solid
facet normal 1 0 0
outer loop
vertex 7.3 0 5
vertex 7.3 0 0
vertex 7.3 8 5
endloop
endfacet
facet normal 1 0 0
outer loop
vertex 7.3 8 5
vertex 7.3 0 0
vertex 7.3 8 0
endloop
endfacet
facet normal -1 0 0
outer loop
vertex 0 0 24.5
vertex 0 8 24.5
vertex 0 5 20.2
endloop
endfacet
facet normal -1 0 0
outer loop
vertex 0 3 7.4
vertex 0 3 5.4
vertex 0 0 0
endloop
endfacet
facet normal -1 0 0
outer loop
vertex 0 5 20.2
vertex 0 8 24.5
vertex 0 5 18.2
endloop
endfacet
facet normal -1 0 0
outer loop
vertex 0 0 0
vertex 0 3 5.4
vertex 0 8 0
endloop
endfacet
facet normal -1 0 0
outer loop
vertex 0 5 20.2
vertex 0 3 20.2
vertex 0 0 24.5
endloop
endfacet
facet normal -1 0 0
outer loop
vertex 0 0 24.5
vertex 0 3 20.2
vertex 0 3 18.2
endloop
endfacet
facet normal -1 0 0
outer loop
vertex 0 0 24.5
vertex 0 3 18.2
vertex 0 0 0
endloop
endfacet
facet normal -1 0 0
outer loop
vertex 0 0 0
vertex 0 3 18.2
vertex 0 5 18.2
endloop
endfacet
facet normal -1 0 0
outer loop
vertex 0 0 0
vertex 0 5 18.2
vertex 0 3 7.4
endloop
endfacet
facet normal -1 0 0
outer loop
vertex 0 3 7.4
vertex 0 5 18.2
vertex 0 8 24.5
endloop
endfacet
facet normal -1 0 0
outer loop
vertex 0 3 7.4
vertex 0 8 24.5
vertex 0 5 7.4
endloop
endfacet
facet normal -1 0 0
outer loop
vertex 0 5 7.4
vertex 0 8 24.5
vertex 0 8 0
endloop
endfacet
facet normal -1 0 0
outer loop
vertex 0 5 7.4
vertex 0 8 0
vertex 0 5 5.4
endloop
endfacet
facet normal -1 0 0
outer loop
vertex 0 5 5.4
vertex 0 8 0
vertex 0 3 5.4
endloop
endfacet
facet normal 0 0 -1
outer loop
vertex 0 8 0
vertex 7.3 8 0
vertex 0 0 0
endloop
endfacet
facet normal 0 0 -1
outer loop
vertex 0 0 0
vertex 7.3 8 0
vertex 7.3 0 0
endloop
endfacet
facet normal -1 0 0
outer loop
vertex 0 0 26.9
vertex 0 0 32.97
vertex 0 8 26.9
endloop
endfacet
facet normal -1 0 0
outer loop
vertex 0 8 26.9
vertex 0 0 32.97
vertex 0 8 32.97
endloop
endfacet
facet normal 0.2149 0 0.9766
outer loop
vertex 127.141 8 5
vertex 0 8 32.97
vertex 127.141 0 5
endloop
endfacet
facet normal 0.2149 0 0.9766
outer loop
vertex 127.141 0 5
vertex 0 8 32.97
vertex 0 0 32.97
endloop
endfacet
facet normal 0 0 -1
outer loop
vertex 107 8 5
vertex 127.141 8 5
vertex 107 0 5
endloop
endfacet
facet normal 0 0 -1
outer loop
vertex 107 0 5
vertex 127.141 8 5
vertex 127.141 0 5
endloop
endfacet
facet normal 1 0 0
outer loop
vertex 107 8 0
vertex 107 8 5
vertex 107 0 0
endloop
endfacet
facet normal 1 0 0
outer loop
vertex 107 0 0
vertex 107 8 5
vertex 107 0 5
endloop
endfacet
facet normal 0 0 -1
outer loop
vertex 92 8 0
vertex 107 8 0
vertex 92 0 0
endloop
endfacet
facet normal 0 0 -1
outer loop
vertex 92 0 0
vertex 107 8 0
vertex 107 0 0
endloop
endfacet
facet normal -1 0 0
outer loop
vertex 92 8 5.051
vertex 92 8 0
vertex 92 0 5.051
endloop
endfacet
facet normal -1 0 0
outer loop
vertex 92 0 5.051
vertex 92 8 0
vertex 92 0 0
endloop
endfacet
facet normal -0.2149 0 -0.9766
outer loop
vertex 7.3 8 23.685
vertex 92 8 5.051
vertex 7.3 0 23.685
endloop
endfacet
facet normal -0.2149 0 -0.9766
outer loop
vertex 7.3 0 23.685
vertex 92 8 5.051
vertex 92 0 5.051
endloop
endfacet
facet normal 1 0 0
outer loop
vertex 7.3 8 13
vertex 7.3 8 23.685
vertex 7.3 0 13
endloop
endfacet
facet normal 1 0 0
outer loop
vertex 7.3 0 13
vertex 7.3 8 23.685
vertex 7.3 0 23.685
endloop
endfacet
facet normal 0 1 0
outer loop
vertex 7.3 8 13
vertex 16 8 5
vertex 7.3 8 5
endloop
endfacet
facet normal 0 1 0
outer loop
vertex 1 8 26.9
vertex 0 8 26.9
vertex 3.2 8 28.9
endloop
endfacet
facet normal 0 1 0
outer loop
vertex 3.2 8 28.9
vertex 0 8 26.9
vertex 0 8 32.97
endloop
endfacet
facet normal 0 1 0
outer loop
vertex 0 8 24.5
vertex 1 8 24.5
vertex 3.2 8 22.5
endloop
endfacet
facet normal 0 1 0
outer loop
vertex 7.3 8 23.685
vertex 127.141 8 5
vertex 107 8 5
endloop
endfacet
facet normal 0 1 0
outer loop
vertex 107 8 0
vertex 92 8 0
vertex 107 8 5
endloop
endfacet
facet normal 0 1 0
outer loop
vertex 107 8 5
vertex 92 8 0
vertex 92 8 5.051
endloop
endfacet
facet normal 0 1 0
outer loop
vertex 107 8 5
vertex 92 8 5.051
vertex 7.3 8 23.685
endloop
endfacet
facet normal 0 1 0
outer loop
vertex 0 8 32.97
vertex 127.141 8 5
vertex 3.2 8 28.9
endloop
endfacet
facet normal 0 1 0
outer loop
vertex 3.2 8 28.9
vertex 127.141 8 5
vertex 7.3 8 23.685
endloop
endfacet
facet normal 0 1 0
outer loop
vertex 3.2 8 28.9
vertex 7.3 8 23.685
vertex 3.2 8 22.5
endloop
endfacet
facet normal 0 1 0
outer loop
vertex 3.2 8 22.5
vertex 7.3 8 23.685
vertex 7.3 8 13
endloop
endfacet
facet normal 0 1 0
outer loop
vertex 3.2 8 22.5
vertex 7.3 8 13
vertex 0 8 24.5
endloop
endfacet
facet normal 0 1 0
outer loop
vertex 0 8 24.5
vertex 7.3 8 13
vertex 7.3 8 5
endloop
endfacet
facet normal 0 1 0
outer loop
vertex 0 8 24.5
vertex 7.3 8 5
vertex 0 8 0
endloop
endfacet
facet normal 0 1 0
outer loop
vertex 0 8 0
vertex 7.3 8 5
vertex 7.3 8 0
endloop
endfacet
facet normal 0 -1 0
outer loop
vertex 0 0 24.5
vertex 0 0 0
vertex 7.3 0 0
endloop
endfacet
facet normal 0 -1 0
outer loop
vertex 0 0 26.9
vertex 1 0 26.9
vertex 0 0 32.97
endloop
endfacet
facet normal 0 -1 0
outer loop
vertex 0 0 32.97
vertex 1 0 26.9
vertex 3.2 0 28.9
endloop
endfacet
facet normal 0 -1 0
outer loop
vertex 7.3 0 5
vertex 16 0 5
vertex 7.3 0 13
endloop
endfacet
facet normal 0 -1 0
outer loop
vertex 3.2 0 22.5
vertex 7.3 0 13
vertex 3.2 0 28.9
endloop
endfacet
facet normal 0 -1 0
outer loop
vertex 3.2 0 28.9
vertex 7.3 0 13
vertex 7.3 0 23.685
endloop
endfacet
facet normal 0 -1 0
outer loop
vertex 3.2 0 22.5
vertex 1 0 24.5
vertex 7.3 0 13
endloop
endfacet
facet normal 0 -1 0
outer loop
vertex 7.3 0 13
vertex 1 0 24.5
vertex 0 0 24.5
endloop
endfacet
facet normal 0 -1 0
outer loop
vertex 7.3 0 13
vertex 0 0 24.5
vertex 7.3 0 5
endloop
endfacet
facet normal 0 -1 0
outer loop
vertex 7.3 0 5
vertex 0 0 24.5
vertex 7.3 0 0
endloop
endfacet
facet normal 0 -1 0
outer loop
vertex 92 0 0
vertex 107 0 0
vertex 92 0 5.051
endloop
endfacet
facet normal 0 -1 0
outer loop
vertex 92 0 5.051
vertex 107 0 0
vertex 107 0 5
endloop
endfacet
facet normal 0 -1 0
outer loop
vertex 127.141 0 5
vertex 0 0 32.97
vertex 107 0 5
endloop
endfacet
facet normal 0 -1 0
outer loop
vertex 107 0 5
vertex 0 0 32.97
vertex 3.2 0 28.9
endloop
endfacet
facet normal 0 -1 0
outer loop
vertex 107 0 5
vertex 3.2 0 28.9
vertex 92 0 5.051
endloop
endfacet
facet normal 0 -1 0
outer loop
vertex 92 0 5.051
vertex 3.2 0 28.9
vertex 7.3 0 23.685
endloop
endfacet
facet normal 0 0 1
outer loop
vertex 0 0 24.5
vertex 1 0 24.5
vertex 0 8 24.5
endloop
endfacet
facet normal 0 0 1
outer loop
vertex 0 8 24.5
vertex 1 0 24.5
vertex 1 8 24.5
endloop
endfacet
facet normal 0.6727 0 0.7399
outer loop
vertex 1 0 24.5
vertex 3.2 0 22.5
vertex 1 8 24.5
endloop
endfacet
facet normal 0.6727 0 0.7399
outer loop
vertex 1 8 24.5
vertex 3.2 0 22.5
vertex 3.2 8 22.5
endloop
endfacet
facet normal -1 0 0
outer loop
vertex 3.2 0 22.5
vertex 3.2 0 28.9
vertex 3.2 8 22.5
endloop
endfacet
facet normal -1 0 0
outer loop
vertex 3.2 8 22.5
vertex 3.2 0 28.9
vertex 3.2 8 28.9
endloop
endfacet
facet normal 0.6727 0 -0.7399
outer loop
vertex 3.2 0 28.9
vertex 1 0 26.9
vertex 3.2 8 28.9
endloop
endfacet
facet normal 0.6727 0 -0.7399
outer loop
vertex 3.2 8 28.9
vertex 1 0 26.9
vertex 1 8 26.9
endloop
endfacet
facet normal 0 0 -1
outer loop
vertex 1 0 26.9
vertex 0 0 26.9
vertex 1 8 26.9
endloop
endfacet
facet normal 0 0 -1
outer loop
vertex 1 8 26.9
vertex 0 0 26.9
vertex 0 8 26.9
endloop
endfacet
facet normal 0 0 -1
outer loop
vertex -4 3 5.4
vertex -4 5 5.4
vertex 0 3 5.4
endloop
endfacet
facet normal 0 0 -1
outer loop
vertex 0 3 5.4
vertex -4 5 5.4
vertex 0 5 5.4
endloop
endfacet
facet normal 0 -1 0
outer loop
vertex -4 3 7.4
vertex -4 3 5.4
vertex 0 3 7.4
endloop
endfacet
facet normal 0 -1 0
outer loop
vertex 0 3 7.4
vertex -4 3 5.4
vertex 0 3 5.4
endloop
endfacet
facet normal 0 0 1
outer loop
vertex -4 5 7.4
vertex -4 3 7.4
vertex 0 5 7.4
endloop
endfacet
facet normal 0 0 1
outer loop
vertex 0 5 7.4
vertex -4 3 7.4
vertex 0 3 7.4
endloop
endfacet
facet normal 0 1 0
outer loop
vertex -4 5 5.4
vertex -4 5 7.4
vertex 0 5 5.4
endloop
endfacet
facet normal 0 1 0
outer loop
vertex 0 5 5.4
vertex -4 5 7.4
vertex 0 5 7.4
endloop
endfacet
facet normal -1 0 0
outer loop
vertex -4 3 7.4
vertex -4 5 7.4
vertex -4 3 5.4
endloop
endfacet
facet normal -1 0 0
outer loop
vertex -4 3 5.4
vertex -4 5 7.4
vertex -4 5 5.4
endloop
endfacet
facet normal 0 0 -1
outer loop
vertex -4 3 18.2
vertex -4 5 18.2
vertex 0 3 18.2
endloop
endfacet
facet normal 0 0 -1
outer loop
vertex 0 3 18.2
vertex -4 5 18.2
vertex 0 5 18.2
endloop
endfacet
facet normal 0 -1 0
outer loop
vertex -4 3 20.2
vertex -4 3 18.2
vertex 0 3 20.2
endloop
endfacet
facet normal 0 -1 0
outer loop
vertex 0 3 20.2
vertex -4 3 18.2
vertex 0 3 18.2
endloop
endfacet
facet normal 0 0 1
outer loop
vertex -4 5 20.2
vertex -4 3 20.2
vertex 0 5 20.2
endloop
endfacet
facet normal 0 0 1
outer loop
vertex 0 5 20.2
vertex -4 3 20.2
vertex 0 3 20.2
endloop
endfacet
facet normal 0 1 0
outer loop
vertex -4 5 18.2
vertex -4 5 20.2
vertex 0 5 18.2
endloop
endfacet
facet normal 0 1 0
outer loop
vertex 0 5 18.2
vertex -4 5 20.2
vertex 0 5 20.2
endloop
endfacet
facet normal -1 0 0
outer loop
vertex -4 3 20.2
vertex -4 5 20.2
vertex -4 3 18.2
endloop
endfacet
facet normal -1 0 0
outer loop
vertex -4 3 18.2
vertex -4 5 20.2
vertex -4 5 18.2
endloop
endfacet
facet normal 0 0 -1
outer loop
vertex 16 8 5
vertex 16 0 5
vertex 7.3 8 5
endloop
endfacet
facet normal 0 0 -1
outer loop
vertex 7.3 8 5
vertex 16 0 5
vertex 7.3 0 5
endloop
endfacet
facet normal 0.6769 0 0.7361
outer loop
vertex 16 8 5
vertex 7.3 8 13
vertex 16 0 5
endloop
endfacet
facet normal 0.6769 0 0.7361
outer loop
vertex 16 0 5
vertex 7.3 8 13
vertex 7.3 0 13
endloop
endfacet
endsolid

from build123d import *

# Parameters (mm, degrees)
P_IDAT_VYSUNUT_M1_DEPTH  = 8
ODEBRAT_VYSUNUT_M1_DEPTH = 132.589517946
SKICA3_W                 = 2
SKICA3_H                 = 2
P_IDAT_VYSUNUT_M2_DEPTH  = 4
SKICA5_W                 = 16
SKICA5_H                 = 8
P_IDAT_VYSUNUT_M4_DEPTH  = 8
ODEBRAT_VYSUNUT_M3_DEPTH = 132.589517946


with BuildPart() as part:
    # Skica1 → Přidat vysunutím1 (new body)
    with BuildSketch(Plane(origin=(0, 0, 0), x_dir=(1, 0, 0), z_dir=(0, 1, 0))):
        Polygon((0, 0), (0, -32.97), (127.140789416, -5), (107, -5), (107, 0), (92, 0), (92, -5.051361455), (7.3, -23.684712804), (7.3, 0), align=None)
    extrude(amount=P_IDAT_VYSUNUT_M1_DEPTH)

    # Skica2 → Odebrat vysunutím1 (cut, through all)
    with BuildSketch(Plane(origin=(0, 8, 0), x_dir=(1, 0, 0), z_dir=(0, 1, 0))):
        Polygon((0, -24.5), (1, -24.5), (3.2, -22.5), (3.2, -28.9), (1, -26.9), (0, -26.9), align=None)
    extrude(amount=-ODEBRAT_VYSUNUT_M1_DEPTH, mode=Mode.SUBTRACT)

    # Skica3 → Přidat vysunutím2 (add)
    with BuildSketch(Plane.ZY):
        with Locations((6.4, 4)):
            Rectangle(SKICA3_W, SKICA3_H)
        with Locations((19.2, 4)):
            Rectangle(SKICA3_W, SKICA3_H)
    extrude(amount=P_IDAT_VYSUNUT_M2_DEPTH)

    # Skica5 → Přidat vysunutím4 (add)
    with BuildSketch(Plane(origin=(0, 8, 0), x_dir=(1, 0, 0), z_dir=(0, 1, 0))):
        with Locations((8, -9)):
            Rectangle(SKICA5_W, SKICA5_H)
    extrude(amount=-P_IDAT_VYSUNUT_M4_DEPTH)

    # Skica7 → Odebrat vysunutím3 (cut, through all)
    with BuildSketch(Plane.XZ):
        Polygon((7.3, 13), (16, 13), (16, 5), align=None)
    extrude(amount=-ODEBRAT_VYSUNUT_M3_DEPTH, mode=Mode.SUBTRACT)


solid = part.part
